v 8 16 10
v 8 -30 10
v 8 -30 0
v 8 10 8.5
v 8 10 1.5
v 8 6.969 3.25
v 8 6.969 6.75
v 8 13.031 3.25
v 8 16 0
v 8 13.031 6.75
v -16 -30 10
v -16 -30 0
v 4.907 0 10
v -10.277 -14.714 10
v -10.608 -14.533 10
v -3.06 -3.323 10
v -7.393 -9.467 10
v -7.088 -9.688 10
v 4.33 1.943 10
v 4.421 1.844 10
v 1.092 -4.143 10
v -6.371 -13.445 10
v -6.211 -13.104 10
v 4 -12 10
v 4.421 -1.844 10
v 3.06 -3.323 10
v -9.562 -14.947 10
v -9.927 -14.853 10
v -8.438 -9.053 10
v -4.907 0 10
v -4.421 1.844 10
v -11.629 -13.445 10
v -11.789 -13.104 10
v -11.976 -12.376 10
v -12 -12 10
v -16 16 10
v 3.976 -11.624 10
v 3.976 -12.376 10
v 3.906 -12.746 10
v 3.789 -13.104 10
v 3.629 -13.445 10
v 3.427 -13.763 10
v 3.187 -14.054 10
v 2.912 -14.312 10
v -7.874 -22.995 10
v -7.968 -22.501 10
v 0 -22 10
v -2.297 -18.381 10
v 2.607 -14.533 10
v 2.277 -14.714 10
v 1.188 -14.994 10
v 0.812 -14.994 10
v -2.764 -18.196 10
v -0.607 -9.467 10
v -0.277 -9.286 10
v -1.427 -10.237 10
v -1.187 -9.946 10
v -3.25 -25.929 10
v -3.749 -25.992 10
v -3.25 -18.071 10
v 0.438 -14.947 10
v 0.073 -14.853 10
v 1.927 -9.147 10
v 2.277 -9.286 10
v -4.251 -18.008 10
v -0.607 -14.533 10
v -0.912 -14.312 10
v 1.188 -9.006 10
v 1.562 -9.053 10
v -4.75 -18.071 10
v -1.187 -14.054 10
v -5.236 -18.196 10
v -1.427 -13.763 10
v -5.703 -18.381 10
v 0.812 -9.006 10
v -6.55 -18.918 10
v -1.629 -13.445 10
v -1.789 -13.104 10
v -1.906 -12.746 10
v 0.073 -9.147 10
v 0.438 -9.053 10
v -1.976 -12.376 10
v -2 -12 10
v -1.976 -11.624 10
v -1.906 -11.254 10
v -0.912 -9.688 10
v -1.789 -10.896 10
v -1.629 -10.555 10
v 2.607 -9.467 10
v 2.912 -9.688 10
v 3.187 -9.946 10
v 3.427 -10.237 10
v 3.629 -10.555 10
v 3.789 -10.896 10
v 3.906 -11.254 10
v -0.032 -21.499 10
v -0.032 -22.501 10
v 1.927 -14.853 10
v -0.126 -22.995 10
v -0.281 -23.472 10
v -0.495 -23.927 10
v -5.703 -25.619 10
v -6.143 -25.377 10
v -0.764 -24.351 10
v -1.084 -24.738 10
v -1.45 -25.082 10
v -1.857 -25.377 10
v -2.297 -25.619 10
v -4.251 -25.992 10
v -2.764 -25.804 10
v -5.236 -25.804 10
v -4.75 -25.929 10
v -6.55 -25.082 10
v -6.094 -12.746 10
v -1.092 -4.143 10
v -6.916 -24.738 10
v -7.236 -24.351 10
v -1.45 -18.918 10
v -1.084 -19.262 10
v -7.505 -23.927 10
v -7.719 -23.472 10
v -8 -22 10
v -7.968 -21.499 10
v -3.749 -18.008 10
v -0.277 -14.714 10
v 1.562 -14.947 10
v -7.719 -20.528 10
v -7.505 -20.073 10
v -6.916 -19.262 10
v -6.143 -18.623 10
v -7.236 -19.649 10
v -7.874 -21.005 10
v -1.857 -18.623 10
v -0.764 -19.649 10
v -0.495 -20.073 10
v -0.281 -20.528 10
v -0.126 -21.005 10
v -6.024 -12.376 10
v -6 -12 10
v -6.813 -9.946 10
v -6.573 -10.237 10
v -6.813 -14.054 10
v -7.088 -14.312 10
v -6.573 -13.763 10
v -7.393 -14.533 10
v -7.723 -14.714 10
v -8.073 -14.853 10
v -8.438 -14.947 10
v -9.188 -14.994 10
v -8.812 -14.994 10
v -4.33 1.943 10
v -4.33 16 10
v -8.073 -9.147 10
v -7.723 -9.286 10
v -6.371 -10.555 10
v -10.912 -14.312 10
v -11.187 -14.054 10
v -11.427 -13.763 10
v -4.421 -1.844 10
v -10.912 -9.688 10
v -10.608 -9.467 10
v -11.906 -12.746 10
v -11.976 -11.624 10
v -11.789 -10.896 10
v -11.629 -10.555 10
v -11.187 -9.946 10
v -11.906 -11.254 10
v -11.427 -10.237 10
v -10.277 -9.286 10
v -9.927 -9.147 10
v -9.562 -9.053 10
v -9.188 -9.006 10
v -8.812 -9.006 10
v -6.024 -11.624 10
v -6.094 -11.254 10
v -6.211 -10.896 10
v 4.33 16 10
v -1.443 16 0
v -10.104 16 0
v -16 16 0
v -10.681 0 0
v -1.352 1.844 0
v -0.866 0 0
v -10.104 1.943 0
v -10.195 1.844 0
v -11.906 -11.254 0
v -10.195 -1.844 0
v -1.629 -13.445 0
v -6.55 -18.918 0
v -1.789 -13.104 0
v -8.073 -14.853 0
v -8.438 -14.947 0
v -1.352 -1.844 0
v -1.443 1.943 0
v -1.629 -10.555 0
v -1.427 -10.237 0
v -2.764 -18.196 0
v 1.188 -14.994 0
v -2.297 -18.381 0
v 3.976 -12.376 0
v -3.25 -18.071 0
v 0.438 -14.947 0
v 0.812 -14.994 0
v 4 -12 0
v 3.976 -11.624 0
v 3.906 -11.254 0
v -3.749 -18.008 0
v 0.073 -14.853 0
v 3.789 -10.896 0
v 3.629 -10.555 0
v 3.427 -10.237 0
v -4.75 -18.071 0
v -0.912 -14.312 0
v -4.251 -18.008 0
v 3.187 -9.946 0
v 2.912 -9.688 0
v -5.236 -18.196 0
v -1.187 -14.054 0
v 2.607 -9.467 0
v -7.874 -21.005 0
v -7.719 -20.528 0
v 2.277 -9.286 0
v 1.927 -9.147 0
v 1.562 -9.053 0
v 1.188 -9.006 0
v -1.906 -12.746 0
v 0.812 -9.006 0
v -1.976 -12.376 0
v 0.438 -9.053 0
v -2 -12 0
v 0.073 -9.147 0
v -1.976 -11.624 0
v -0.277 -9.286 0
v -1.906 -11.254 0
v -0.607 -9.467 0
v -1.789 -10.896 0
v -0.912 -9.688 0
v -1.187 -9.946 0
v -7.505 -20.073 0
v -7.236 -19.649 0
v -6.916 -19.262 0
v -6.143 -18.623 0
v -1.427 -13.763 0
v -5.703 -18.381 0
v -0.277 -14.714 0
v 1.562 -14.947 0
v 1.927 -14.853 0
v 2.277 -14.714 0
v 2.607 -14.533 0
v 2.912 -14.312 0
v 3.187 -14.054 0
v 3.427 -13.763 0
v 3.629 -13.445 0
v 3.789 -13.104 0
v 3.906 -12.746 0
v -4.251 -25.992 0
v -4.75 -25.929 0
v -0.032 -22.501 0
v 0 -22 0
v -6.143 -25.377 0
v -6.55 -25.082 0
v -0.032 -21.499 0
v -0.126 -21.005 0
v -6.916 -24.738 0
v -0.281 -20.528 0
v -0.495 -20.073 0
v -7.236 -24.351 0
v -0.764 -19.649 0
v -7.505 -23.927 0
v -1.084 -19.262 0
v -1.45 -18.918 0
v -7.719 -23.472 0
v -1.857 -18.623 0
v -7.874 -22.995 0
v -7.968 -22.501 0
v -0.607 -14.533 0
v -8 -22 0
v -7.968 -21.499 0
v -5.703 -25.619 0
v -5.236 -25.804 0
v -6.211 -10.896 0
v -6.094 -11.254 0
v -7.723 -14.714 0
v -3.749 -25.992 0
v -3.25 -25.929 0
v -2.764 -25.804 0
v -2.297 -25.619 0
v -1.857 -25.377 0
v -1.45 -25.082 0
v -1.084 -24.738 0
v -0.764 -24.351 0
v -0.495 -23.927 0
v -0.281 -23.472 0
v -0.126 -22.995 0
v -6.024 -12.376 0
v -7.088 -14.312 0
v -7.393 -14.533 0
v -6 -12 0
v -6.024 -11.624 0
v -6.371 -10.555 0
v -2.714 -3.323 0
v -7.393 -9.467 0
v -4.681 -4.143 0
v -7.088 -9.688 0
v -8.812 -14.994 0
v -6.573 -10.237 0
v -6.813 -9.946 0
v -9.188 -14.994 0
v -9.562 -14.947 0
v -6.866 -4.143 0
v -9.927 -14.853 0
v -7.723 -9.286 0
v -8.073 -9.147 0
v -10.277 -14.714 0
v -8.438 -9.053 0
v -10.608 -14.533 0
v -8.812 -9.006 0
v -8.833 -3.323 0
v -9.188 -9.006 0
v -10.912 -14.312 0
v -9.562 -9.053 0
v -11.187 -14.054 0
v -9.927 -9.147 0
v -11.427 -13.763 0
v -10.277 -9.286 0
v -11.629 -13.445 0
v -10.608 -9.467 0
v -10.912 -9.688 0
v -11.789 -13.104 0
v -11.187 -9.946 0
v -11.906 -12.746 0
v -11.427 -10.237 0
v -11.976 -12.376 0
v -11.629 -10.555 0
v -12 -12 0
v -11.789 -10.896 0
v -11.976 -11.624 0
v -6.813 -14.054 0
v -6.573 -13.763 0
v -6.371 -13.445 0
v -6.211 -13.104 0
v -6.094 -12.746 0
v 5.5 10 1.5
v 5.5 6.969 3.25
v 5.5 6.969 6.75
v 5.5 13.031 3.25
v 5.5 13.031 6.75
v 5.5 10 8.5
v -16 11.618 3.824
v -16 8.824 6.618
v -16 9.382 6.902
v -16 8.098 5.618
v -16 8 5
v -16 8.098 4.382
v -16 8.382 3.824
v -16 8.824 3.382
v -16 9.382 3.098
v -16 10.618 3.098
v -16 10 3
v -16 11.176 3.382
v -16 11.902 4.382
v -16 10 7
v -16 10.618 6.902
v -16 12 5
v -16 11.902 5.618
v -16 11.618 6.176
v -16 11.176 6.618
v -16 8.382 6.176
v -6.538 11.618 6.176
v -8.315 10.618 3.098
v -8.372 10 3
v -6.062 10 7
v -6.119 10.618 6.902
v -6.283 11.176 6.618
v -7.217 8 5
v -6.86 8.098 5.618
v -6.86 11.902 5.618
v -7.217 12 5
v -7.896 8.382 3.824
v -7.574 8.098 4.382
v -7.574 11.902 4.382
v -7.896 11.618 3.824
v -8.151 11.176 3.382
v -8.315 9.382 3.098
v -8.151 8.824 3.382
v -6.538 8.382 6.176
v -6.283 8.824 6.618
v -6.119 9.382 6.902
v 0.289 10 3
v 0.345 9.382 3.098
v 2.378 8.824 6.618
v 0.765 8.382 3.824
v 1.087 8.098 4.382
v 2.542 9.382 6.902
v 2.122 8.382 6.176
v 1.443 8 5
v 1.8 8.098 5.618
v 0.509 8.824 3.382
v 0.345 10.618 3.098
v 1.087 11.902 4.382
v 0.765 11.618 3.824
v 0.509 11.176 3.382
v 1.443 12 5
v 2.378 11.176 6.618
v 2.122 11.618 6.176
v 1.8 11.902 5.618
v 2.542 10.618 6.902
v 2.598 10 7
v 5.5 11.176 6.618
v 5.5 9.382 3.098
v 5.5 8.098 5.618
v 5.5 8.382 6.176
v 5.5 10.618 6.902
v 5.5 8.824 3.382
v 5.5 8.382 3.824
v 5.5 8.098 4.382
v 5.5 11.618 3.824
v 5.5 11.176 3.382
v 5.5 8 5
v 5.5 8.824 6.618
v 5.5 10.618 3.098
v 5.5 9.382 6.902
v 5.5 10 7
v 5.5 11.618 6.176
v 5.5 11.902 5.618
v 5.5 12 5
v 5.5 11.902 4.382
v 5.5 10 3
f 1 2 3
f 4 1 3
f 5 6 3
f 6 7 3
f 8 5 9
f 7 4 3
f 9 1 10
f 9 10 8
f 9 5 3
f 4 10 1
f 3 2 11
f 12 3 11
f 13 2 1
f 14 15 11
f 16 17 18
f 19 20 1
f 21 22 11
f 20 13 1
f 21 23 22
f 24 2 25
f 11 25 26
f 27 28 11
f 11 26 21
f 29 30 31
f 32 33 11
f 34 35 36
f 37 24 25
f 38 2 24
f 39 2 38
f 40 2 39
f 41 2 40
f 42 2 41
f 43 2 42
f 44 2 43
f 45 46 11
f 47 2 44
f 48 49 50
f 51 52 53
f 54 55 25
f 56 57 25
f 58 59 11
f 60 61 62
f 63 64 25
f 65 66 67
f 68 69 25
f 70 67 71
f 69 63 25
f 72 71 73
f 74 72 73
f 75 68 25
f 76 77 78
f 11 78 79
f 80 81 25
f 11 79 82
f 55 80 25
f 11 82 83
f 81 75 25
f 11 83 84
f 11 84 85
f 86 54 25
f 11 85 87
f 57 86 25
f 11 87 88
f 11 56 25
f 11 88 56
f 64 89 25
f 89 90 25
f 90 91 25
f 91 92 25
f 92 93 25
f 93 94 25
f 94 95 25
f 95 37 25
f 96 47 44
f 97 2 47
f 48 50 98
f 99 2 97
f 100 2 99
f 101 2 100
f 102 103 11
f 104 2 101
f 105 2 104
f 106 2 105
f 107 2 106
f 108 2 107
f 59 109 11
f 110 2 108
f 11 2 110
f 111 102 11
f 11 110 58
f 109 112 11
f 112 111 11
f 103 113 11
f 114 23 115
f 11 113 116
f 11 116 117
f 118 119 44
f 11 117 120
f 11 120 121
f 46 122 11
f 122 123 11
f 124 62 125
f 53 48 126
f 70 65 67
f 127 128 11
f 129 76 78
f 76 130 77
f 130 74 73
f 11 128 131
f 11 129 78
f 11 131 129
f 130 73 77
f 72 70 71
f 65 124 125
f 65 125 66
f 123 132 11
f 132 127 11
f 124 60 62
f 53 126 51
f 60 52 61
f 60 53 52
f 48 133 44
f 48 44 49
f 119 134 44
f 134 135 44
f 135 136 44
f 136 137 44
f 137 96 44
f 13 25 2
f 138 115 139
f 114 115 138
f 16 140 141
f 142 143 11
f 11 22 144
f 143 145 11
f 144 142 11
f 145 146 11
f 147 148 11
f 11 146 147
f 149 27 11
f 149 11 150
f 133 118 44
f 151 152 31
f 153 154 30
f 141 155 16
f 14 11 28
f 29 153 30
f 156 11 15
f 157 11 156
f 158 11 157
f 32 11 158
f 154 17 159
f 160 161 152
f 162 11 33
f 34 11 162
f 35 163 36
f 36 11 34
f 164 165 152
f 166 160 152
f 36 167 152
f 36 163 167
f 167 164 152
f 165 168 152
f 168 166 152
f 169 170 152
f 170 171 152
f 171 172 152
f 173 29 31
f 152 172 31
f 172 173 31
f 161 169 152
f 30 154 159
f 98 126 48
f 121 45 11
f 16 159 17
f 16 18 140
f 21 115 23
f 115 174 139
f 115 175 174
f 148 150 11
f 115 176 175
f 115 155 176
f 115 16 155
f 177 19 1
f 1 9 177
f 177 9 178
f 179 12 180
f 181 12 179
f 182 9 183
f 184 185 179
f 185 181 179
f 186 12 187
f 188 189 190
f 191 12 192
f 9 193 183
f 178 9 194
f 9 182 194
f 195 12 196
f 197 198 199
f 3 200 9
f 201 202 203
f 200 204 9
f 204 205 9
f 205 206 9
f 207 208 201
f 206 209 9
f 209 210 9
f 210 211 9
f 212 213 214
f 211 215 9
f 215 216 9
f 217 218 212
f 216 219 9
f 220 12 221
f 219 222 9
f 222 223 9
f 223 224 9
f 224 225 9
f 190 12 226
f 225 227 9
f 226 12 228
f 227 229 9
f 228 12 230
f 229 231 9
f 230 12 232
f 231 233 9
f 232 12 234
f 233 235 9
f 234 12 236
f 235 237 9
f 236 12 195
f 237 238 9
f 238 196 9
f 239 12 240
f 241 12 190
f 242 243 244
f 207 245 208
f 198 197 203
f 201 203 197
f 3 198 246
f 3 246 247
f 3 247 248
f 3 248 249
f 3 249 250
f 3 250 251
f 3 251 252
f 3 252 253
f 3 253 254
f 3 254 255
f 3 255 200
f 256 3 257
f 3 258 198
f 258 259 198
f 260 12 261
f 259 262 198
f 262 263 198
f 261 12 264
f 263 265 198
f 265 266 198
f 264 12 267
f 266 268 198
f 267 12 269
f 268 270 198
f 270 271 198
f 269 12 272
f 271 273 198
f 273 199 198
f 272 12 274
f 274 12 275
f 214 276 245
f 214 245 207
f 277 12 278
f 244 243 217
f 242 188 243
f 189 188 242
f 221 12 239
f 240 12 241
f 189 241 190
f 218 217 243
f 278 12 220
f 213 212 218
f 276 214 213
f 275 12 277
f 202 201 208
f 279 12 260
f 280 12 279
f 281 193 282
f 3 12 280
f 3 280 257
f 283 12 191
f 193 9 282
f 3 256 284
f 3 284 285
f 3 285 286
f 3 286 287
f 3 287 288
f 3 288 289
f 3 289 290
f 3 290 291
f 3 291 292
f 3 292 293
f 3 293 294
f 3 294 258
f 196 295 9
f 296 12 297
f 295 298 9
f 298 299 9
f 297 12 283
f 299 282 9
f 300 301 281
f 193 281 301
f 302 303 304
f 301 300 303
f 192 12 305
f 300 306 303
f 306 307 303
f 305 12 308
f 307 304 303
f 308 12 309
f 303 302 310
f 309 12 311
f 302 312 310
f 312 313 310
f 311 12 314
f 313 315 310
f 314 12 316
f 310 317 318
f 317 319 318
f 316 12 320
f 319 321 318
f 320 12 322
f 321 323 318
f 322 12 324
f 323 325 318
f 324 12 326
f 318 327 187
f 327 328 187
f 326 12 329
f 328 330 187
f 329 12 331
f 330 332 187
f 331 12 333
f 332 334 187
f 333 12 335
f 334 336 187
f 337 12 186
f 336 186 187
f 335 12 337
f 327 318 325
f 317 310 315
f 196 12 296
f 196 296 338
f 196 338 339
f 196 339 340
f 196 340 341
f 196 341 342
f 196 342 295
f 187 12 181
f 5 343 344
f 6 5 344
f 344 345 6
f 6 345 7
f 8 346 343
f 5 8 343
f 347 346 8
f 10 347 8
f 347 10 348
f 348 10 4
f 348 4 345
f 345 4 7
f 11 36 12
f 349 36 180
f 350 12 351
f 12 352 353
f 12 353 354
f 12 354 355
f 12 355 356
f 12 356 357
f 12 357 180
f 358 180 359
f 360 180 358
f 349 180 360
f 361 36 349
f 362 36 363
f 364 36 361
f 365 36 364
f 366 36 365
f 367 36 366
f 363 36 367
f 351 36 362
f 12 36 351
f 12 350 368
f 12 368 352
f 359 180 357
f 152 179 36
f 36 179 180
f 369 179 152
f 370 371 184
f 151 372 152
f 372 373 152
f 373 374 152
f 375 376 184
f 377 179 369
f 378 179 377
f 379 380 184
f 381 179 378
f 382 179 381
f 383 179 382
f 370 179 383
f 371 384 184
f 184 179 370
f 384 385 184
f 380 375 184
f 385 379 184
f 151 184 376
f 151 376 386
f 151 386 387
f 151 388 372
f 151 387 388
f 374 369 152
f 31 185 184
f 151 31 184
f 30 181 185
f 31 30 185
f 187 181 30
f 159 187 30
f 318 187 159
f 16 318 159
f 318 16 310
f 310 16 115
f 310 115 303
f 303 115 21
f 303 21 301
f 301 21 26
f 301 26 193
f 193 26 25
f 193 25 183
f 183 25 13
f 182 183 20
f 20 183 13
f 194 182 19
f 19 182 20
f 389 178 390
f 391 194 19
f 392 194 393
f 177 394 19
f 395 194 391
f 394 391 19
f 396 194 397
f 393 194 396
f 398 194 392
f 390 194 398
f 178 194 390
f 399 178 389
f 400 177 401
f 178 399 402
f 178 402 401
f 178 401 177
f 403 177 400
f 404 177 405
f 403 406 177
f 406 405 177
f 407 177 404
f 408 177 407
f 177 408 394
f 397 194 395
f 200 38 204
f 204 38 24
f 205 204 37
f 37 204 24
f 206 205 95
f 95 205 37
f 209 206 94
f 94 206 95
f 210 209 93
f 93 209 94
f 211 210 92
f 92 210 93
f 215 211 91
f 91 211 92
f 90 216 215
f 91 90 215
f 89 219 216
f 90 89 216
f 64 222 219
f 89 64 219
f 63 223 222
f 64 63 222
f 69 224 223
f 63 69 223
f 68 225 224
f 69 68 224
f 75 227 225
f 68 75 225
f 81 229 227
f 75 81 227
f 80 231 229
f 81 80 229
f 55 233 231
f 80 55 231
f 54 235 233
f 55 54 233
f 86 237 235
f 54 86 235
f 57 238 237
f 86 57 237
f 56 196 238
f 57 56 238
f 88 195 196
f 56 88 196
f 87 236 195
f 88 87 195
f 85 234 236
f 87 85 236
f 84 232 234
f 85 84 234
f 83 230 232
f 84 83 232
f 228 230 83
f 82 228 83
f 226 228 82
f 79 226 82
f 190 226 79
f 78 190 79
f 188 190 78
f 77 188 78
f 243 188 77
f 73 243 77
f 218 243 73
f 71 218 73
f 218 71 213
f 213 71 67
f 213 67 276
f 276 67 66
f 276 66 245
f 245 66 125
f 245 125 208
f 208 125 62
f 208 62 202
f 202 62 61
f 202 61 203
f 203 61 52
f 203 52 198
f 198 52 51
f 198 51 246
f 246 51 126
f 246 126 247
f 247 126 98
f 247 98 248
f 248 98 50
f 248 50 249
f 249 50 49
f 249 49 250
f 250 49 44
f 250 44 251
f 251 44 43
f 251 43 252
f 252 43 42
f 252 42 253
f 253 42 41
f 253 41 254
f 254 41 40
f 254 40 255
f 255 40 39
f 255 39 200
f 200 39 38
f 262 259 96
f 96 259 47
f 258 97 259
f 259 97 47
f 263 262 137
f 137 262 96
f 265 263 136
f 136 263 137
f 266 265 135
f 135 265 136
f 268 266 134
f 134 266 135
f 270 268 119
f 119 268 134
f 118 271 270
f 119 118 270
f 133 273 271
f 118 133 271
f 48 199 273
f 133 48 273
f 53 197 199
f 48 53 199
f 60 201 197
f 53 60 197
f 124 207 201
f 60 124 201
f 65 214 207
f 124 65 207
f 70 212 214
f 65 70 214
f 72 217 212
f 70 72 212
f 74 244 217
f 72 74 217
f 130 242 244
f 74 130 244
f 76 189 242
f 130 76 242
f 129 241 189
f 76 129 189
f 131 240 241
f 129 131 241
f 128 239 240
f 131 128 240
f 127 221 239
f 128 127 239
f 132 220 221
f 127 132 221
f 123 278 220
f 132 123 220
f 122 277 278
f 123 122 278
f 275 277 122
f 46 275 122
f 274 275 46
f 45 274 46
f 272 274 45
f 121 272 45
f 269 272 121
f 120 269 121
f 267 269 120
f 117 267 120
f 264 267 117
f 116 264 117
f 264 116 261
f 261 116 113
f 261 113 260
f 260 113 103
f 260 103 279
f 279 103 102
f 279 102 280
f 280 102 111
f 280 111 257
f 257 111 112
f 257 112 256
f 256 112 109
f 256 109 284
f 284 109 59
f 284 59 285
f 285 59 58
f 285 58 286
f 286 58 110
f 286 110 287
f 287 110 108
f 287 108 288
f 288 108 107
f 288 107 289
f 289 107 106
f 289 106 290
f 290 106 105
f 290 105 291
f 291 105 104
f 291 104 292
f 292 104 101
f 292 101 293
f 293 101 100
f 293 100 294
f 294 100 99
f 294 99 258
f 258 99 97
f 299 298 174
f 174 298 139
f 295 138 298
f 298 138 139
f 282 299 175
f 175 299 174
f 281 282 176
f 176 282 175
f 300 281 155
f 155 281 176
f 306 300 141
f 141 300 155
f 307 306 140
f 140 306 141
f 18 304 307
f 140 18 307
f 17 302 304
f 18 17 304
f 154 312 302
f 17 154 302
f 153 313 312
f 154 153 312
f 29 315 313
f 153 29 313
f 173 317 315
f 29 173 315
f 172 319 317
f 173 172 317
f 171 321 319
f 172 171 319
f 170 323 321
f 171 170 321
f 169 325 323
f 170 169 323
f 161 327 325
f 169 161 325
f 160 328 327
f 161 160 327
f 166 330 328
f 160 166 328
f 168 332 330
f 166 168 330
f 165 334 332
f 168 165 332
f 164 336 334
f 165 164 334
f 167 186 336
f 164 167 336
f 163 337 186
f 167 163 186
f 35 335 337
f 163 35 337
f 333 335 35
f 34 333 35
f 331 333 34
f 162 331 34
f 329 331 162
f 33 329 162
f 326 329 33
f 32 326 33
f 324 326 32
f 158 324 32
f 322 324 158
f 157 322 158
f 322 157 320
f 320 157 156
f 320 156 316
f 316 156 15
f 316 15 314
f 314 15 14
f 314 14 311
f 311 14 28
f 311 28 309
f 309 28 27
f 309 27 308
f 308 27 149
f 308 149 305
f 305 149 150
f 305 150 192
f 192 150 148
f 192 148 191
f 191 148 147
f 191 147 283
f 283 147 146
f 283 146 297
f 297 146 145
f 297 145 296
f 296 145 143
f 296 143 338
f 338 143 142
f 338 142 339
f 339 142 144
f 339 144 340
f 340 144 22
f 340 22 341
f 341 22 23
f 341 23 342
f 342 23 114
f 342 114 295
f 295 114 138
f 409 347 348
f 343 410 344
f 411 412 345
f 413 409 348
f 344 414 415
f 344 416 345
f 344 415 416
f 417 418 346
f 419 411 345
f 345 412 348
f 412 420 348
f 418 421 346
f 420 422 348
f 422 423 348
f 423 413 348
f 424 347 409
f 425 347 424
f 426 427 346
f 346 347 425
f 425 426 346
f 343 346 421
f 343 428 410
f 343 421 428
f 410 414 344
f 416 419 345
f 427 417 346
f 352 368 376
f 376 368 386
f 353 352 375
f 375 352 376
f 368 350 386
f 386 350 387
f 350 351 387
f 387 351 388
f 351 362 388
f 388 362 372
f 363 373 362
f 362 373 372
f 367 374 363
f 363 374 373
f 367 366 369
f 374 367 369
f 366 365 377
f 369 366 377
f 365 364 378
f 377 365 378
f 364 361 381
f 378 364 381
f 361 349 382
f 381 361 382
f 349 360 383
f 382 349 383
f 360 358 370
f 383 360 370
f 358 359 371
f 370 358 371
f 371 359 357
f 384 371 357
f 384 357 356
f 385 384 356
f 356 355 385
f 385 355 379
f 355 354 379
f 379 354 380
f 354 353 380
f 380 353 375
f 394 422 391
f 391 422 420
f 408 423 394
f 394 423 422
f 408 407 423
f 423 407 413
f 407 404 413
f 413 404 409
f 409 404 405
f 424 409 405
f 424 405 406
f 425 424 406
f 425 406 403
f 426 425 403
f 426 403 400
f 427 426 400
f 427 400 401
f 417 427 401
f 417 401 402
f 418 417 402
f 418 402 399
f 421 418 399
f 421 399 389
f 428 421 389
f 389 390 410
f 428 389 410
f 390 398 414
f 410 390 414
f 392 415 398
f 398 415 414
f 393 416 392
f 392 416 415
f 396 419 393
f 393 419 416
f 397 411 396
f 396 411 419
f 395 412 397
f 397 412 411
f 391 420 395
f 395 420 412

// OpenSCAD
// nischi prusa lamp holder


screwhole = 4; 		//for 3mm screw, to mount opto stop
nuttrap=7; 			//hole for nut - 3mm nut measured, thickness 2.5 
gap_width = 10;

body_width=24; 	//rod end
body_height=10; 	//rod end
screw_elevation = body_height/2; // set at half of body_height 

translate([0,0,body_height ]) rotate([0,-180,0]) tool_holder();

module tool_holder()
{
difference()
{
  union()
  {
	translate([-8,0,0 ]) cube([body_width,16,body_height]);  
							cylinder(body_height,8,8,$fn=20);
	translate([-8,-30,0 ]) 	cube([body_width,30,body_height]); //opto end
  }

  union()
  {
     rotate([0,30,0]) cutting();

      translate([-1, -12, -1]) cylinder(h = body_height+2, r1=3, r2=3 ,$fn = 50);
      translate([ 9, -12, -1]) cylinder(h = body_height+2, r1=3, r2=3 ,$fn = 50);
      translate([ 4, -22, -1]) cylinder(h = body_height+2, r1=4, r2=4 ,$fn = 50);


      // translate([4,-17,-1]) cylinder(h = body_height+2, r1=3, r2=3 ,$fn = 50);	
      // translate([4,-17,-1]) cylinder(h = body_height/3*2, r1=9, r2=4 ,$fn = 50);	

	//screw to hold to rod
	translate([0,10,screw_elevation]) rotate([0,90,0]) 
		cylinder(40,screwhole/2, screwhole/2, $fn=20,center=true); //screw hole
	translate([-8,10,screw_elevation]) rotate([0,90,0]) 
		cylinder(5,nuttrap/2,nuttrap/2, $fn=6,center=true); //nut trap
    }
  }
}

module cutting()
{
	translate([0,     0, -5 ]) cylinder((body_height+20),4.25,4.25);  // for 8mm threaded rod
	translate([-3.75,0, -5 ]) cube([7.5,25,(body_height+20)]);   // long slot 

}
